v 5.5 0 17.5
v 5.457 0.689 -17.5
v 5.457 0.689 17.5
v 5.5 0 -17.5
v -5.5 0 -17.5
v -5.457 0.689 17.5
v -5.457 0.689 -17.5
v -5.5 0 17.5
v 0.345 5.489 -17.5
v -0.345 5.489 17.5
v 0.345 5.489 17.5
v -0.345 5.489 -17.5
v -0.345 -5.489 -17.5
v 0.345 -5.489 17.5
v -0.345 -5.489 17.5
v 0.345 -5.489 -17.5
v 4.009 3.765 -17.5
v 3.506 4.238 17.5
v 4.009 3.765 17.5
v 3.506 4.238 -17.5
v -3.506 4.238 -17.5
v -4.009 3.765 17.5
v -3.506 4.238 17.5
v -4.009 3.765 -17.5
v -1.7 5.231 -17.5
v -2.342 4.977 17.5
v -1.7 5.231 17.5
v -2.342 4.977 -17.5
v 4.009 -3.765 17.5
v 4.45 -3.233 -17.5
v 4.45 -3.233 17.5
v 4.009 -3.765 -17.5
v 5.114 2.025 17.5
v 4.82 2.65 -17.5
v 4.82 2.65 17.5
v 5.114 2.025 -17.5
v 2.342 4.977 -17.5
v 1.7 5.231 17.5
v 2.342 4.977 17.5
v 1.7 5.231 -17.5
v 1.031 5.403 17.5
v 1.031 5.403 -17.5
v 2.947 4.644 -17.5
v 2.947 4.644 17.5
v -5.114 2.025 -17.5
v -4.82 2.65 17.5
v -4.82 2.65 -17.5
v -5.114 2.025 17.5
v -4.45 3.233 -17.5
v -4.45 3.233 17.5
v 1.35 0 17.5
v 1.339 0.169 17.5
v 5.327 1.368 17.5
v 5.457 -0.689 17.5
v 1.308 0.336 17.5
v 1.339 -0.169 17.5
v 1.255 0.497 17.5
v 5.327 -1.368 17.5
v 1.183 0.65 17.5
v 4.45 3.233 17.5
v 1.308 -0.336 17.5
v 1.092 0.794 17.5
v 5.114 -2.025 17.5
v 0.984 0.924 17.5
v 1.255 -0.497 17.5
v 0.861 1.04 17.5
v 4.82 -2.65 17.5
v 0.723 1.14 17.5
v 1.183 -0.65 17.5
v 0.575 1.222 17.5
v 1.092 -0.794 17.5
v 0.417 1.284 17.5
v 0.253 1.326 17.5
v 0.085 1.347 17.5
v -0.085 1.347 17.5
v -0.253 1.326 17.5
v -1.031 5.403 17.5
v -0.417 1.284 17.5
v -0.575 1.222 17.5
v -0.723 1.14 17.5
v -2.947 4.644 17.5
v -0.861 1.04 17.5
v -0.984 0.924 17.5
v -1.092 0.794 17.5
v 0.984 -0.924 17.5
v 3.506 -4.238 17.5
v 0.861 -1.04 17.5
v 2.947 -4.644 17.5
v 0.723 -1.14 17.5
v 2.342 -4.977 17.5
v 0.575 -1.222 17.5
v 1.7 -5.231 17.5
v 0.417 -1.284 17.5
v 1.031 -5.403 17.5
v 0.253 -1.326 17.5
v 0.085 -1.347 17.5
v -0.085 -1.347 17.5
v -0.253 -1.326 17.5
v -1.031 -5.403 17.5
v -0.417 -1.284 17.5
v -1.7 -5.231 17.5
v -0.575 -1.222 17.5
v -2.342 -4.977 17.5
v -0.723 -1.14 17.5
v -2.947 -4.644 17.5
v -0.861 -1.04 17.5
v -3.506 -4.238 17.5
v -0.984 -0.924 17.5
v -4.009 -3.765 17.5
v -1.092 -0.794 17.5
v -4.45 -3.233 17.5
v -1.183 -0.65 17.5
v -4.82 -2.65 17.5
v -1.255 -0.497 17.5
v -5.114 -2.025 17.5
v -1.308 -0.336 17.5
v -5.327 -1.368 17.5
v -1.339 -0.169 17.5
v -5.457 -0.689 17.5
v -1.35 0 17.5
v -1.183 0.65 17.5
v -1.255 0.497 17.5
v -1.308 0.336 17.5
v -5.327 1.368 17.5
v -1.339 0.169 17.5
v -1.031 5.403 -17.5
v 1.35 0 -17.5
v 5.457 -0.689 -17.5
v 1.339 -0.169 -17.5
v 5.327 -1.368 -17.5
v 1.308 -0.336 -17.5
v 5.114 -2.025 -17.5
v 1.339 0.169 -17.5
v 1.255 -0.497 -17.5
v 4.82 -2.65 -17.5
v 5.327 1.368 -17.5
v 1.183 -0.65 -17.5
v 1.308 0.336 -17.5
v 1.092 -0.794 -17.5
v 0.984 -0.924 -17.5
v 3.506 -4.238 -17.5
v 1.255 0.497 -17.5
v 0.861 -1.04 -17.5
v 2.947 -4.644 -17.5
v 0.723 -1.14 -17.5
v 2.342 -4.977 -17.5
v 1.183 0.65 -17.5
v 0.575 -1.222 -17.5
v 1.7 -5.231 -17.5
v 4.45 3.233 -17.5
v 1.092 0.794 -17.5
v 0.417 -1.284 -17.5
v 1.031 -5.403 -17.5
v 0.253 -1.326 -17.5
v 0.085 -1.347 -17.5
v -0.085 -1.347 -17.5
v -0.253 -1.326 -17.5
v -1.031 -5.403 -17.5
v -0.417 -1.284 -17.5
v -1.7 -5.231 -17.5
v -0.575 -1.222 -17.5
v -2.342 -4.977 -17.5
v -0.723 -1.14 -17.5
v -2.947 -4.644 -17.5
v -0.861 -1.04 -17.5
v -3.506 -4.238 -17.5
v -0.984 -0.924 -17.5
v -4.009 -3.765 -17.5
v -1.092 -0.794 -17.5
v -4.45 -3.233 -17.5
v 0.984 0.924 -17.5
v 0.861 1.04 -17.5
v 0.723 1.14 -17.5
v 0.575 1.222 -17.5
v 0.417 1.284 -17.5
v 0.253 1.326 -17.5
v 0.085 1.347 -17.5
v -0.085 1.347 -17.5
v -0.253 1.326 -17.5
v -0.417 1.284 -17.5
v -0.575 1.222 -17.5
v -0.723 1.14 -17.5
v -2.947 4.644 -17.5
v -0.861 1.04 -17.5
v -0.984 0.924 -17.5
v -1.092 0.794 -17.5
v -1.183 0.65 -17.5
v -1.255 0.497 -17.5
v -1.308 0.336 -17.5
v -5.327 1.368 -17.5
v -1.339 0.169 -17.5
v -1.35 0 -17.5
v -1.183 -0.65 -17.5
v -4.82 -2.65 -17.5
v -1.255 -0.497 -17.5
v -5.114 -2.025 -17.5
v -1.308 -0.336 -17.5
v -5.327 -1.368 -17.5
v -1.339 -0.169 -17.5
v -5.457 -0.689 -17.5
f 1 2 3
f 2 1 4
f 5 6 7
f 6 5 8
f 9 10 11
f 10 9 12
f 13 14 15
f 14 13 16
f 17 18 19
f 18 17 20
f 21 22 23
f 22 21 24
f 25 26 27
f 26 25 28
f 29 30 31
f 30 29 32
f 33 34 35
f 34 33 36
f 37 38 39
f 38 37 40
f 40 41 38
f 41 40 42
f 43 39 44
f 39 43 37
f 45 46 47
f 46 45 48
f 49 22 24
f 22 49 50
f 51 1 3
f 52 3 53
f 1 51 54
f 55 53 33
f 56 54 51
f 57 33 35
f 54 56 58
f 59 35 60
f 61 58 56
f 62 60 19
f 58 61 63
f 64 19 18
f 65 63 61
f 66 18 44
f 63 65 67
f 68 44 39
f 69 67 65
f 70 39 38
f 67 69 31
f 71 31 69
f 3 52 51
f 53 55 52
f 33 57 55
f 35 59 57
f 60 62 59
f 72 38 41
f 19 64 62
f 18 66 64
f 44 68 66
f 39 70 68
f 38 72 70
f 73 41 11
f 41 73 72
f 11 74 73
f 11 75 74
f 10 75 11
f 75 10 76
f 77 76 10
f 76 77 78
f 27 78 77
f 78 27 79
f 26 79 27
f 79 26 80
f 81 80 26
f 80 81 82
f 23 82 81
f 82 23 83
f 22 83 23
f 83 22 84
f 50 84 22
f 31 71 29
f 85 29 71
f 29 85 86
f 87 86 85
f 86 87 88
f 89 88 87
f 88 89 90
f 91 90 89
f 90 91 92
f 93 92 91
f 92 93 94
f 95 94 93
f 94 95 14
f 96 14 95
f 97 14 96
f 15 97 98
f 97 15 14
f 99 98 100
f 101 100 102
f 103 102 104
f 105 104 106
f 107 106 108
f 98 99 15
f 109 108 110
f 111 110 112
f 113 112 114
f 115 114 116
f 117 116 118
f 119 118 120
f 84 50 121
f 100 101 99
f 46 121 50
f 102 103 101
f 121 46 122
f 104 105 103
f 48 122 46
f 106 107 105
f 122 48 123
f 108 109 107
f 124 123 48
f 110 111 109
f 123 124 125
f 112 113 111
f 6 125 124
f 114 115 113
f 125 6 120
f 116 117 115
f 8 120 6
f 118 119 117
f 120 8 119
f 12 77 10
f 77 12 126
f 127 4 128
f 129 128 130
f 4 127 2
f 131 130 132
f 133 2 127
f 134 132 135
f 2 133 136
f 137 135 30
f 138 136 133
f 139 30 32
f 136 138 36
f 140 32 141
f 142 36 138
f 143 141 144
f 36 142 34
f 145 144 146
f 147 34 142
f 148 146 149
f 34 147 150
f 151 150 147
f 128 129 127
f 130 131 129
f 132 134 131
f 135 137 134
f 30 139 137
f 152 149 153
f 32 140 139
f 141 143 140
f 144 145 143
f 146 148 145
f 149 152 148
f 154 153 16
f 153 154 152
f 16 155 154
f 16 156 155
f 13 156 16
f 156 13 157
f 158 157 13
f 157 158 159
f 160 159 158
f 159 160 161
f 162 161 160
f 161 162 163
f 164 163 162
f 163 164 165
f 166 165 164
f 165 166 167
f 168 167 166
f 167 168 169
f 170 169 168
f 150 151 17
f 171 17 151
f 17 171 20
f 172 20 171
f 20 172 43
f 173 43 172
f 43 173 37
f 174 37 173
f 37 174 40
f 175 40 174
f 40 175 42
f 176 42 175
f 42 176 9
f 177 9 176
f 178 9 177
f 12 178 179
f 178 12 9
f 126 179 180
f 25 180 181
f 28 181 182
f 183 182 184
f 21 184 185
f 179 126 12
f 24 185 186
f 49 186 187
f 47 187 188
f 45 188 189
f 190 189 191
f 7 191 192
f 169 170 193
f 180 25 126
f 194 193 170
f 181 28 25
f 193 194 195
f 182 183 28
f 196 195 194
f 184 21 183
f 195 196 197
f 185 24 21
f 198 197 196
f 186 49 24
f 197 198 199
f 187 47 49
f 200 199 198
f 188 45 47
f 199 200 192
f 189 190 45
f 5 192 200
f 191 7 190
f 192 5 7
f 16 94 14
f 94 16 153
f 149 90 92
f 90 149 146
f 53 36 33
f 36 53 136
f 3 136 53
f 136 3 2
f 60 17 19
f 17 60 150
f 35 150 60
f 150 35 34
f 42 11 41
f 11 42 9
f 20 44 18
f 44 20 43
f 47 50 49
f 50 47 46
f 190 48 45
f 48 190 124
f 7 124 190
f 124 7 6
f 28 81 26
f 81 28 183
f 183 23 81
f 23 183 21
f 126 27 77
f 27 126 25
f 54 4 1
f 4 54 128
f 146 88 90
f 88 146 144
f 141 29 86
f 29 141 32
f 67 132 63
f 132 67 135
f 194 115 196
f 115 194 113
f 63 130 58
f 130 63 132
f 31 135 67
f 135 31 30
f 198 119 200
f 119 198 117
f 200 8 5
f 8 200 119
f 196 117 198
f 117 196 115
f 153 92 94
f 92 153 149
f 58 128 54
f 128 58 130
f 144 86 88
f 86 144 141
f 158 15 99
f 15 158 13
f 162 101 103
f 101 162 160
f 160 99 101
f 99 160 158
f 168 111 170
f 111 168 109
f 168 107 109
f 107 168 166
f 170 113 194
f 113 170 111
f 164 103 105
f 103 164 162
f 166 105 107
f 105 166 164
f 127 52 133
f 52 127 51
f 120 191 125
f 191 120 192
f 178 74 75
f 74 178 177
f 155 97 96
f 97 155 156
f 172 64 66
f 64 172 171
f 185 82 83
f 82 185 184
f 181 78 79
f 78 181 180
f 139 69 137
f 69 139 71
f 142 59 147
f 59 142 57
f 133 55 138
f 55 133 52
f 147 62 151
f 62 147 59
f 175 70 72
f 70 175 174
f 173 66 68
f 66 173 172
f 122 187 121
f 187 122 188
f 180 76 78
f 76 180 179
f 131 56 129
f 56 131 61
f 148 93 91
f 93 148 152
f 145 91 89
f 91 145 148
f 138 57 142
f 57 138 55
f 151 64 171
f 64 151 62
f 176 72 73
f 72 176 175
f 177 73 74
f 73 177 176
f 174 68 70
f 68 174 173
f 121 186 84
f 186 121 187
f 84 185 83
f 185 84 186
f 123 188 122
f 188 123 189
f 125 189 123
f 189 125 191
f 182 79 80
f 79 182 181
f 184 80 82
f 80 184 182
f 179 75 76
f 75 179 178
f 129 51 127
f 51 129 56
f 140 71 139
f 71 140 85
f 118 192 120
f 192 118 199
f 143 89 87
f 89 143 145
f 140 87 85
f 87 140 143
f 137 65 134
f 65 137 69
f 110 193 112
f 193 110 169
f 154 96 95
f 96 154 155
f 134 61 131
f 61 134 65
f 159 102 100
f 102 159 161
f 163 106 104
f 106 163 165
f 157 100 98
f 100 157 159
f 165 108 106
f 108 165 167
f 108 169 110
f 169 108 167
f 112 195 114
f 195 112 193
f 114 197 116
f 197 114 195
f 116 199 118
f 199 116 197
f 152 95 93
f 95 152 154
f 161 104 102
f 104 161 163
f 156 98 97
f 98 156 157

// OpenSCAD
$fn = 50;


difference() {
	union() {
		translate(v = [0, 0, -17.5000000000]) {
			cylinder(h = 35, r = 5.5000000000);
		}
	}
	union() {
		translate(v = [0, 0, -100.0000000000]) {
			cylinder(h = 200, r = 1.3500000000);
		}
	}
}
